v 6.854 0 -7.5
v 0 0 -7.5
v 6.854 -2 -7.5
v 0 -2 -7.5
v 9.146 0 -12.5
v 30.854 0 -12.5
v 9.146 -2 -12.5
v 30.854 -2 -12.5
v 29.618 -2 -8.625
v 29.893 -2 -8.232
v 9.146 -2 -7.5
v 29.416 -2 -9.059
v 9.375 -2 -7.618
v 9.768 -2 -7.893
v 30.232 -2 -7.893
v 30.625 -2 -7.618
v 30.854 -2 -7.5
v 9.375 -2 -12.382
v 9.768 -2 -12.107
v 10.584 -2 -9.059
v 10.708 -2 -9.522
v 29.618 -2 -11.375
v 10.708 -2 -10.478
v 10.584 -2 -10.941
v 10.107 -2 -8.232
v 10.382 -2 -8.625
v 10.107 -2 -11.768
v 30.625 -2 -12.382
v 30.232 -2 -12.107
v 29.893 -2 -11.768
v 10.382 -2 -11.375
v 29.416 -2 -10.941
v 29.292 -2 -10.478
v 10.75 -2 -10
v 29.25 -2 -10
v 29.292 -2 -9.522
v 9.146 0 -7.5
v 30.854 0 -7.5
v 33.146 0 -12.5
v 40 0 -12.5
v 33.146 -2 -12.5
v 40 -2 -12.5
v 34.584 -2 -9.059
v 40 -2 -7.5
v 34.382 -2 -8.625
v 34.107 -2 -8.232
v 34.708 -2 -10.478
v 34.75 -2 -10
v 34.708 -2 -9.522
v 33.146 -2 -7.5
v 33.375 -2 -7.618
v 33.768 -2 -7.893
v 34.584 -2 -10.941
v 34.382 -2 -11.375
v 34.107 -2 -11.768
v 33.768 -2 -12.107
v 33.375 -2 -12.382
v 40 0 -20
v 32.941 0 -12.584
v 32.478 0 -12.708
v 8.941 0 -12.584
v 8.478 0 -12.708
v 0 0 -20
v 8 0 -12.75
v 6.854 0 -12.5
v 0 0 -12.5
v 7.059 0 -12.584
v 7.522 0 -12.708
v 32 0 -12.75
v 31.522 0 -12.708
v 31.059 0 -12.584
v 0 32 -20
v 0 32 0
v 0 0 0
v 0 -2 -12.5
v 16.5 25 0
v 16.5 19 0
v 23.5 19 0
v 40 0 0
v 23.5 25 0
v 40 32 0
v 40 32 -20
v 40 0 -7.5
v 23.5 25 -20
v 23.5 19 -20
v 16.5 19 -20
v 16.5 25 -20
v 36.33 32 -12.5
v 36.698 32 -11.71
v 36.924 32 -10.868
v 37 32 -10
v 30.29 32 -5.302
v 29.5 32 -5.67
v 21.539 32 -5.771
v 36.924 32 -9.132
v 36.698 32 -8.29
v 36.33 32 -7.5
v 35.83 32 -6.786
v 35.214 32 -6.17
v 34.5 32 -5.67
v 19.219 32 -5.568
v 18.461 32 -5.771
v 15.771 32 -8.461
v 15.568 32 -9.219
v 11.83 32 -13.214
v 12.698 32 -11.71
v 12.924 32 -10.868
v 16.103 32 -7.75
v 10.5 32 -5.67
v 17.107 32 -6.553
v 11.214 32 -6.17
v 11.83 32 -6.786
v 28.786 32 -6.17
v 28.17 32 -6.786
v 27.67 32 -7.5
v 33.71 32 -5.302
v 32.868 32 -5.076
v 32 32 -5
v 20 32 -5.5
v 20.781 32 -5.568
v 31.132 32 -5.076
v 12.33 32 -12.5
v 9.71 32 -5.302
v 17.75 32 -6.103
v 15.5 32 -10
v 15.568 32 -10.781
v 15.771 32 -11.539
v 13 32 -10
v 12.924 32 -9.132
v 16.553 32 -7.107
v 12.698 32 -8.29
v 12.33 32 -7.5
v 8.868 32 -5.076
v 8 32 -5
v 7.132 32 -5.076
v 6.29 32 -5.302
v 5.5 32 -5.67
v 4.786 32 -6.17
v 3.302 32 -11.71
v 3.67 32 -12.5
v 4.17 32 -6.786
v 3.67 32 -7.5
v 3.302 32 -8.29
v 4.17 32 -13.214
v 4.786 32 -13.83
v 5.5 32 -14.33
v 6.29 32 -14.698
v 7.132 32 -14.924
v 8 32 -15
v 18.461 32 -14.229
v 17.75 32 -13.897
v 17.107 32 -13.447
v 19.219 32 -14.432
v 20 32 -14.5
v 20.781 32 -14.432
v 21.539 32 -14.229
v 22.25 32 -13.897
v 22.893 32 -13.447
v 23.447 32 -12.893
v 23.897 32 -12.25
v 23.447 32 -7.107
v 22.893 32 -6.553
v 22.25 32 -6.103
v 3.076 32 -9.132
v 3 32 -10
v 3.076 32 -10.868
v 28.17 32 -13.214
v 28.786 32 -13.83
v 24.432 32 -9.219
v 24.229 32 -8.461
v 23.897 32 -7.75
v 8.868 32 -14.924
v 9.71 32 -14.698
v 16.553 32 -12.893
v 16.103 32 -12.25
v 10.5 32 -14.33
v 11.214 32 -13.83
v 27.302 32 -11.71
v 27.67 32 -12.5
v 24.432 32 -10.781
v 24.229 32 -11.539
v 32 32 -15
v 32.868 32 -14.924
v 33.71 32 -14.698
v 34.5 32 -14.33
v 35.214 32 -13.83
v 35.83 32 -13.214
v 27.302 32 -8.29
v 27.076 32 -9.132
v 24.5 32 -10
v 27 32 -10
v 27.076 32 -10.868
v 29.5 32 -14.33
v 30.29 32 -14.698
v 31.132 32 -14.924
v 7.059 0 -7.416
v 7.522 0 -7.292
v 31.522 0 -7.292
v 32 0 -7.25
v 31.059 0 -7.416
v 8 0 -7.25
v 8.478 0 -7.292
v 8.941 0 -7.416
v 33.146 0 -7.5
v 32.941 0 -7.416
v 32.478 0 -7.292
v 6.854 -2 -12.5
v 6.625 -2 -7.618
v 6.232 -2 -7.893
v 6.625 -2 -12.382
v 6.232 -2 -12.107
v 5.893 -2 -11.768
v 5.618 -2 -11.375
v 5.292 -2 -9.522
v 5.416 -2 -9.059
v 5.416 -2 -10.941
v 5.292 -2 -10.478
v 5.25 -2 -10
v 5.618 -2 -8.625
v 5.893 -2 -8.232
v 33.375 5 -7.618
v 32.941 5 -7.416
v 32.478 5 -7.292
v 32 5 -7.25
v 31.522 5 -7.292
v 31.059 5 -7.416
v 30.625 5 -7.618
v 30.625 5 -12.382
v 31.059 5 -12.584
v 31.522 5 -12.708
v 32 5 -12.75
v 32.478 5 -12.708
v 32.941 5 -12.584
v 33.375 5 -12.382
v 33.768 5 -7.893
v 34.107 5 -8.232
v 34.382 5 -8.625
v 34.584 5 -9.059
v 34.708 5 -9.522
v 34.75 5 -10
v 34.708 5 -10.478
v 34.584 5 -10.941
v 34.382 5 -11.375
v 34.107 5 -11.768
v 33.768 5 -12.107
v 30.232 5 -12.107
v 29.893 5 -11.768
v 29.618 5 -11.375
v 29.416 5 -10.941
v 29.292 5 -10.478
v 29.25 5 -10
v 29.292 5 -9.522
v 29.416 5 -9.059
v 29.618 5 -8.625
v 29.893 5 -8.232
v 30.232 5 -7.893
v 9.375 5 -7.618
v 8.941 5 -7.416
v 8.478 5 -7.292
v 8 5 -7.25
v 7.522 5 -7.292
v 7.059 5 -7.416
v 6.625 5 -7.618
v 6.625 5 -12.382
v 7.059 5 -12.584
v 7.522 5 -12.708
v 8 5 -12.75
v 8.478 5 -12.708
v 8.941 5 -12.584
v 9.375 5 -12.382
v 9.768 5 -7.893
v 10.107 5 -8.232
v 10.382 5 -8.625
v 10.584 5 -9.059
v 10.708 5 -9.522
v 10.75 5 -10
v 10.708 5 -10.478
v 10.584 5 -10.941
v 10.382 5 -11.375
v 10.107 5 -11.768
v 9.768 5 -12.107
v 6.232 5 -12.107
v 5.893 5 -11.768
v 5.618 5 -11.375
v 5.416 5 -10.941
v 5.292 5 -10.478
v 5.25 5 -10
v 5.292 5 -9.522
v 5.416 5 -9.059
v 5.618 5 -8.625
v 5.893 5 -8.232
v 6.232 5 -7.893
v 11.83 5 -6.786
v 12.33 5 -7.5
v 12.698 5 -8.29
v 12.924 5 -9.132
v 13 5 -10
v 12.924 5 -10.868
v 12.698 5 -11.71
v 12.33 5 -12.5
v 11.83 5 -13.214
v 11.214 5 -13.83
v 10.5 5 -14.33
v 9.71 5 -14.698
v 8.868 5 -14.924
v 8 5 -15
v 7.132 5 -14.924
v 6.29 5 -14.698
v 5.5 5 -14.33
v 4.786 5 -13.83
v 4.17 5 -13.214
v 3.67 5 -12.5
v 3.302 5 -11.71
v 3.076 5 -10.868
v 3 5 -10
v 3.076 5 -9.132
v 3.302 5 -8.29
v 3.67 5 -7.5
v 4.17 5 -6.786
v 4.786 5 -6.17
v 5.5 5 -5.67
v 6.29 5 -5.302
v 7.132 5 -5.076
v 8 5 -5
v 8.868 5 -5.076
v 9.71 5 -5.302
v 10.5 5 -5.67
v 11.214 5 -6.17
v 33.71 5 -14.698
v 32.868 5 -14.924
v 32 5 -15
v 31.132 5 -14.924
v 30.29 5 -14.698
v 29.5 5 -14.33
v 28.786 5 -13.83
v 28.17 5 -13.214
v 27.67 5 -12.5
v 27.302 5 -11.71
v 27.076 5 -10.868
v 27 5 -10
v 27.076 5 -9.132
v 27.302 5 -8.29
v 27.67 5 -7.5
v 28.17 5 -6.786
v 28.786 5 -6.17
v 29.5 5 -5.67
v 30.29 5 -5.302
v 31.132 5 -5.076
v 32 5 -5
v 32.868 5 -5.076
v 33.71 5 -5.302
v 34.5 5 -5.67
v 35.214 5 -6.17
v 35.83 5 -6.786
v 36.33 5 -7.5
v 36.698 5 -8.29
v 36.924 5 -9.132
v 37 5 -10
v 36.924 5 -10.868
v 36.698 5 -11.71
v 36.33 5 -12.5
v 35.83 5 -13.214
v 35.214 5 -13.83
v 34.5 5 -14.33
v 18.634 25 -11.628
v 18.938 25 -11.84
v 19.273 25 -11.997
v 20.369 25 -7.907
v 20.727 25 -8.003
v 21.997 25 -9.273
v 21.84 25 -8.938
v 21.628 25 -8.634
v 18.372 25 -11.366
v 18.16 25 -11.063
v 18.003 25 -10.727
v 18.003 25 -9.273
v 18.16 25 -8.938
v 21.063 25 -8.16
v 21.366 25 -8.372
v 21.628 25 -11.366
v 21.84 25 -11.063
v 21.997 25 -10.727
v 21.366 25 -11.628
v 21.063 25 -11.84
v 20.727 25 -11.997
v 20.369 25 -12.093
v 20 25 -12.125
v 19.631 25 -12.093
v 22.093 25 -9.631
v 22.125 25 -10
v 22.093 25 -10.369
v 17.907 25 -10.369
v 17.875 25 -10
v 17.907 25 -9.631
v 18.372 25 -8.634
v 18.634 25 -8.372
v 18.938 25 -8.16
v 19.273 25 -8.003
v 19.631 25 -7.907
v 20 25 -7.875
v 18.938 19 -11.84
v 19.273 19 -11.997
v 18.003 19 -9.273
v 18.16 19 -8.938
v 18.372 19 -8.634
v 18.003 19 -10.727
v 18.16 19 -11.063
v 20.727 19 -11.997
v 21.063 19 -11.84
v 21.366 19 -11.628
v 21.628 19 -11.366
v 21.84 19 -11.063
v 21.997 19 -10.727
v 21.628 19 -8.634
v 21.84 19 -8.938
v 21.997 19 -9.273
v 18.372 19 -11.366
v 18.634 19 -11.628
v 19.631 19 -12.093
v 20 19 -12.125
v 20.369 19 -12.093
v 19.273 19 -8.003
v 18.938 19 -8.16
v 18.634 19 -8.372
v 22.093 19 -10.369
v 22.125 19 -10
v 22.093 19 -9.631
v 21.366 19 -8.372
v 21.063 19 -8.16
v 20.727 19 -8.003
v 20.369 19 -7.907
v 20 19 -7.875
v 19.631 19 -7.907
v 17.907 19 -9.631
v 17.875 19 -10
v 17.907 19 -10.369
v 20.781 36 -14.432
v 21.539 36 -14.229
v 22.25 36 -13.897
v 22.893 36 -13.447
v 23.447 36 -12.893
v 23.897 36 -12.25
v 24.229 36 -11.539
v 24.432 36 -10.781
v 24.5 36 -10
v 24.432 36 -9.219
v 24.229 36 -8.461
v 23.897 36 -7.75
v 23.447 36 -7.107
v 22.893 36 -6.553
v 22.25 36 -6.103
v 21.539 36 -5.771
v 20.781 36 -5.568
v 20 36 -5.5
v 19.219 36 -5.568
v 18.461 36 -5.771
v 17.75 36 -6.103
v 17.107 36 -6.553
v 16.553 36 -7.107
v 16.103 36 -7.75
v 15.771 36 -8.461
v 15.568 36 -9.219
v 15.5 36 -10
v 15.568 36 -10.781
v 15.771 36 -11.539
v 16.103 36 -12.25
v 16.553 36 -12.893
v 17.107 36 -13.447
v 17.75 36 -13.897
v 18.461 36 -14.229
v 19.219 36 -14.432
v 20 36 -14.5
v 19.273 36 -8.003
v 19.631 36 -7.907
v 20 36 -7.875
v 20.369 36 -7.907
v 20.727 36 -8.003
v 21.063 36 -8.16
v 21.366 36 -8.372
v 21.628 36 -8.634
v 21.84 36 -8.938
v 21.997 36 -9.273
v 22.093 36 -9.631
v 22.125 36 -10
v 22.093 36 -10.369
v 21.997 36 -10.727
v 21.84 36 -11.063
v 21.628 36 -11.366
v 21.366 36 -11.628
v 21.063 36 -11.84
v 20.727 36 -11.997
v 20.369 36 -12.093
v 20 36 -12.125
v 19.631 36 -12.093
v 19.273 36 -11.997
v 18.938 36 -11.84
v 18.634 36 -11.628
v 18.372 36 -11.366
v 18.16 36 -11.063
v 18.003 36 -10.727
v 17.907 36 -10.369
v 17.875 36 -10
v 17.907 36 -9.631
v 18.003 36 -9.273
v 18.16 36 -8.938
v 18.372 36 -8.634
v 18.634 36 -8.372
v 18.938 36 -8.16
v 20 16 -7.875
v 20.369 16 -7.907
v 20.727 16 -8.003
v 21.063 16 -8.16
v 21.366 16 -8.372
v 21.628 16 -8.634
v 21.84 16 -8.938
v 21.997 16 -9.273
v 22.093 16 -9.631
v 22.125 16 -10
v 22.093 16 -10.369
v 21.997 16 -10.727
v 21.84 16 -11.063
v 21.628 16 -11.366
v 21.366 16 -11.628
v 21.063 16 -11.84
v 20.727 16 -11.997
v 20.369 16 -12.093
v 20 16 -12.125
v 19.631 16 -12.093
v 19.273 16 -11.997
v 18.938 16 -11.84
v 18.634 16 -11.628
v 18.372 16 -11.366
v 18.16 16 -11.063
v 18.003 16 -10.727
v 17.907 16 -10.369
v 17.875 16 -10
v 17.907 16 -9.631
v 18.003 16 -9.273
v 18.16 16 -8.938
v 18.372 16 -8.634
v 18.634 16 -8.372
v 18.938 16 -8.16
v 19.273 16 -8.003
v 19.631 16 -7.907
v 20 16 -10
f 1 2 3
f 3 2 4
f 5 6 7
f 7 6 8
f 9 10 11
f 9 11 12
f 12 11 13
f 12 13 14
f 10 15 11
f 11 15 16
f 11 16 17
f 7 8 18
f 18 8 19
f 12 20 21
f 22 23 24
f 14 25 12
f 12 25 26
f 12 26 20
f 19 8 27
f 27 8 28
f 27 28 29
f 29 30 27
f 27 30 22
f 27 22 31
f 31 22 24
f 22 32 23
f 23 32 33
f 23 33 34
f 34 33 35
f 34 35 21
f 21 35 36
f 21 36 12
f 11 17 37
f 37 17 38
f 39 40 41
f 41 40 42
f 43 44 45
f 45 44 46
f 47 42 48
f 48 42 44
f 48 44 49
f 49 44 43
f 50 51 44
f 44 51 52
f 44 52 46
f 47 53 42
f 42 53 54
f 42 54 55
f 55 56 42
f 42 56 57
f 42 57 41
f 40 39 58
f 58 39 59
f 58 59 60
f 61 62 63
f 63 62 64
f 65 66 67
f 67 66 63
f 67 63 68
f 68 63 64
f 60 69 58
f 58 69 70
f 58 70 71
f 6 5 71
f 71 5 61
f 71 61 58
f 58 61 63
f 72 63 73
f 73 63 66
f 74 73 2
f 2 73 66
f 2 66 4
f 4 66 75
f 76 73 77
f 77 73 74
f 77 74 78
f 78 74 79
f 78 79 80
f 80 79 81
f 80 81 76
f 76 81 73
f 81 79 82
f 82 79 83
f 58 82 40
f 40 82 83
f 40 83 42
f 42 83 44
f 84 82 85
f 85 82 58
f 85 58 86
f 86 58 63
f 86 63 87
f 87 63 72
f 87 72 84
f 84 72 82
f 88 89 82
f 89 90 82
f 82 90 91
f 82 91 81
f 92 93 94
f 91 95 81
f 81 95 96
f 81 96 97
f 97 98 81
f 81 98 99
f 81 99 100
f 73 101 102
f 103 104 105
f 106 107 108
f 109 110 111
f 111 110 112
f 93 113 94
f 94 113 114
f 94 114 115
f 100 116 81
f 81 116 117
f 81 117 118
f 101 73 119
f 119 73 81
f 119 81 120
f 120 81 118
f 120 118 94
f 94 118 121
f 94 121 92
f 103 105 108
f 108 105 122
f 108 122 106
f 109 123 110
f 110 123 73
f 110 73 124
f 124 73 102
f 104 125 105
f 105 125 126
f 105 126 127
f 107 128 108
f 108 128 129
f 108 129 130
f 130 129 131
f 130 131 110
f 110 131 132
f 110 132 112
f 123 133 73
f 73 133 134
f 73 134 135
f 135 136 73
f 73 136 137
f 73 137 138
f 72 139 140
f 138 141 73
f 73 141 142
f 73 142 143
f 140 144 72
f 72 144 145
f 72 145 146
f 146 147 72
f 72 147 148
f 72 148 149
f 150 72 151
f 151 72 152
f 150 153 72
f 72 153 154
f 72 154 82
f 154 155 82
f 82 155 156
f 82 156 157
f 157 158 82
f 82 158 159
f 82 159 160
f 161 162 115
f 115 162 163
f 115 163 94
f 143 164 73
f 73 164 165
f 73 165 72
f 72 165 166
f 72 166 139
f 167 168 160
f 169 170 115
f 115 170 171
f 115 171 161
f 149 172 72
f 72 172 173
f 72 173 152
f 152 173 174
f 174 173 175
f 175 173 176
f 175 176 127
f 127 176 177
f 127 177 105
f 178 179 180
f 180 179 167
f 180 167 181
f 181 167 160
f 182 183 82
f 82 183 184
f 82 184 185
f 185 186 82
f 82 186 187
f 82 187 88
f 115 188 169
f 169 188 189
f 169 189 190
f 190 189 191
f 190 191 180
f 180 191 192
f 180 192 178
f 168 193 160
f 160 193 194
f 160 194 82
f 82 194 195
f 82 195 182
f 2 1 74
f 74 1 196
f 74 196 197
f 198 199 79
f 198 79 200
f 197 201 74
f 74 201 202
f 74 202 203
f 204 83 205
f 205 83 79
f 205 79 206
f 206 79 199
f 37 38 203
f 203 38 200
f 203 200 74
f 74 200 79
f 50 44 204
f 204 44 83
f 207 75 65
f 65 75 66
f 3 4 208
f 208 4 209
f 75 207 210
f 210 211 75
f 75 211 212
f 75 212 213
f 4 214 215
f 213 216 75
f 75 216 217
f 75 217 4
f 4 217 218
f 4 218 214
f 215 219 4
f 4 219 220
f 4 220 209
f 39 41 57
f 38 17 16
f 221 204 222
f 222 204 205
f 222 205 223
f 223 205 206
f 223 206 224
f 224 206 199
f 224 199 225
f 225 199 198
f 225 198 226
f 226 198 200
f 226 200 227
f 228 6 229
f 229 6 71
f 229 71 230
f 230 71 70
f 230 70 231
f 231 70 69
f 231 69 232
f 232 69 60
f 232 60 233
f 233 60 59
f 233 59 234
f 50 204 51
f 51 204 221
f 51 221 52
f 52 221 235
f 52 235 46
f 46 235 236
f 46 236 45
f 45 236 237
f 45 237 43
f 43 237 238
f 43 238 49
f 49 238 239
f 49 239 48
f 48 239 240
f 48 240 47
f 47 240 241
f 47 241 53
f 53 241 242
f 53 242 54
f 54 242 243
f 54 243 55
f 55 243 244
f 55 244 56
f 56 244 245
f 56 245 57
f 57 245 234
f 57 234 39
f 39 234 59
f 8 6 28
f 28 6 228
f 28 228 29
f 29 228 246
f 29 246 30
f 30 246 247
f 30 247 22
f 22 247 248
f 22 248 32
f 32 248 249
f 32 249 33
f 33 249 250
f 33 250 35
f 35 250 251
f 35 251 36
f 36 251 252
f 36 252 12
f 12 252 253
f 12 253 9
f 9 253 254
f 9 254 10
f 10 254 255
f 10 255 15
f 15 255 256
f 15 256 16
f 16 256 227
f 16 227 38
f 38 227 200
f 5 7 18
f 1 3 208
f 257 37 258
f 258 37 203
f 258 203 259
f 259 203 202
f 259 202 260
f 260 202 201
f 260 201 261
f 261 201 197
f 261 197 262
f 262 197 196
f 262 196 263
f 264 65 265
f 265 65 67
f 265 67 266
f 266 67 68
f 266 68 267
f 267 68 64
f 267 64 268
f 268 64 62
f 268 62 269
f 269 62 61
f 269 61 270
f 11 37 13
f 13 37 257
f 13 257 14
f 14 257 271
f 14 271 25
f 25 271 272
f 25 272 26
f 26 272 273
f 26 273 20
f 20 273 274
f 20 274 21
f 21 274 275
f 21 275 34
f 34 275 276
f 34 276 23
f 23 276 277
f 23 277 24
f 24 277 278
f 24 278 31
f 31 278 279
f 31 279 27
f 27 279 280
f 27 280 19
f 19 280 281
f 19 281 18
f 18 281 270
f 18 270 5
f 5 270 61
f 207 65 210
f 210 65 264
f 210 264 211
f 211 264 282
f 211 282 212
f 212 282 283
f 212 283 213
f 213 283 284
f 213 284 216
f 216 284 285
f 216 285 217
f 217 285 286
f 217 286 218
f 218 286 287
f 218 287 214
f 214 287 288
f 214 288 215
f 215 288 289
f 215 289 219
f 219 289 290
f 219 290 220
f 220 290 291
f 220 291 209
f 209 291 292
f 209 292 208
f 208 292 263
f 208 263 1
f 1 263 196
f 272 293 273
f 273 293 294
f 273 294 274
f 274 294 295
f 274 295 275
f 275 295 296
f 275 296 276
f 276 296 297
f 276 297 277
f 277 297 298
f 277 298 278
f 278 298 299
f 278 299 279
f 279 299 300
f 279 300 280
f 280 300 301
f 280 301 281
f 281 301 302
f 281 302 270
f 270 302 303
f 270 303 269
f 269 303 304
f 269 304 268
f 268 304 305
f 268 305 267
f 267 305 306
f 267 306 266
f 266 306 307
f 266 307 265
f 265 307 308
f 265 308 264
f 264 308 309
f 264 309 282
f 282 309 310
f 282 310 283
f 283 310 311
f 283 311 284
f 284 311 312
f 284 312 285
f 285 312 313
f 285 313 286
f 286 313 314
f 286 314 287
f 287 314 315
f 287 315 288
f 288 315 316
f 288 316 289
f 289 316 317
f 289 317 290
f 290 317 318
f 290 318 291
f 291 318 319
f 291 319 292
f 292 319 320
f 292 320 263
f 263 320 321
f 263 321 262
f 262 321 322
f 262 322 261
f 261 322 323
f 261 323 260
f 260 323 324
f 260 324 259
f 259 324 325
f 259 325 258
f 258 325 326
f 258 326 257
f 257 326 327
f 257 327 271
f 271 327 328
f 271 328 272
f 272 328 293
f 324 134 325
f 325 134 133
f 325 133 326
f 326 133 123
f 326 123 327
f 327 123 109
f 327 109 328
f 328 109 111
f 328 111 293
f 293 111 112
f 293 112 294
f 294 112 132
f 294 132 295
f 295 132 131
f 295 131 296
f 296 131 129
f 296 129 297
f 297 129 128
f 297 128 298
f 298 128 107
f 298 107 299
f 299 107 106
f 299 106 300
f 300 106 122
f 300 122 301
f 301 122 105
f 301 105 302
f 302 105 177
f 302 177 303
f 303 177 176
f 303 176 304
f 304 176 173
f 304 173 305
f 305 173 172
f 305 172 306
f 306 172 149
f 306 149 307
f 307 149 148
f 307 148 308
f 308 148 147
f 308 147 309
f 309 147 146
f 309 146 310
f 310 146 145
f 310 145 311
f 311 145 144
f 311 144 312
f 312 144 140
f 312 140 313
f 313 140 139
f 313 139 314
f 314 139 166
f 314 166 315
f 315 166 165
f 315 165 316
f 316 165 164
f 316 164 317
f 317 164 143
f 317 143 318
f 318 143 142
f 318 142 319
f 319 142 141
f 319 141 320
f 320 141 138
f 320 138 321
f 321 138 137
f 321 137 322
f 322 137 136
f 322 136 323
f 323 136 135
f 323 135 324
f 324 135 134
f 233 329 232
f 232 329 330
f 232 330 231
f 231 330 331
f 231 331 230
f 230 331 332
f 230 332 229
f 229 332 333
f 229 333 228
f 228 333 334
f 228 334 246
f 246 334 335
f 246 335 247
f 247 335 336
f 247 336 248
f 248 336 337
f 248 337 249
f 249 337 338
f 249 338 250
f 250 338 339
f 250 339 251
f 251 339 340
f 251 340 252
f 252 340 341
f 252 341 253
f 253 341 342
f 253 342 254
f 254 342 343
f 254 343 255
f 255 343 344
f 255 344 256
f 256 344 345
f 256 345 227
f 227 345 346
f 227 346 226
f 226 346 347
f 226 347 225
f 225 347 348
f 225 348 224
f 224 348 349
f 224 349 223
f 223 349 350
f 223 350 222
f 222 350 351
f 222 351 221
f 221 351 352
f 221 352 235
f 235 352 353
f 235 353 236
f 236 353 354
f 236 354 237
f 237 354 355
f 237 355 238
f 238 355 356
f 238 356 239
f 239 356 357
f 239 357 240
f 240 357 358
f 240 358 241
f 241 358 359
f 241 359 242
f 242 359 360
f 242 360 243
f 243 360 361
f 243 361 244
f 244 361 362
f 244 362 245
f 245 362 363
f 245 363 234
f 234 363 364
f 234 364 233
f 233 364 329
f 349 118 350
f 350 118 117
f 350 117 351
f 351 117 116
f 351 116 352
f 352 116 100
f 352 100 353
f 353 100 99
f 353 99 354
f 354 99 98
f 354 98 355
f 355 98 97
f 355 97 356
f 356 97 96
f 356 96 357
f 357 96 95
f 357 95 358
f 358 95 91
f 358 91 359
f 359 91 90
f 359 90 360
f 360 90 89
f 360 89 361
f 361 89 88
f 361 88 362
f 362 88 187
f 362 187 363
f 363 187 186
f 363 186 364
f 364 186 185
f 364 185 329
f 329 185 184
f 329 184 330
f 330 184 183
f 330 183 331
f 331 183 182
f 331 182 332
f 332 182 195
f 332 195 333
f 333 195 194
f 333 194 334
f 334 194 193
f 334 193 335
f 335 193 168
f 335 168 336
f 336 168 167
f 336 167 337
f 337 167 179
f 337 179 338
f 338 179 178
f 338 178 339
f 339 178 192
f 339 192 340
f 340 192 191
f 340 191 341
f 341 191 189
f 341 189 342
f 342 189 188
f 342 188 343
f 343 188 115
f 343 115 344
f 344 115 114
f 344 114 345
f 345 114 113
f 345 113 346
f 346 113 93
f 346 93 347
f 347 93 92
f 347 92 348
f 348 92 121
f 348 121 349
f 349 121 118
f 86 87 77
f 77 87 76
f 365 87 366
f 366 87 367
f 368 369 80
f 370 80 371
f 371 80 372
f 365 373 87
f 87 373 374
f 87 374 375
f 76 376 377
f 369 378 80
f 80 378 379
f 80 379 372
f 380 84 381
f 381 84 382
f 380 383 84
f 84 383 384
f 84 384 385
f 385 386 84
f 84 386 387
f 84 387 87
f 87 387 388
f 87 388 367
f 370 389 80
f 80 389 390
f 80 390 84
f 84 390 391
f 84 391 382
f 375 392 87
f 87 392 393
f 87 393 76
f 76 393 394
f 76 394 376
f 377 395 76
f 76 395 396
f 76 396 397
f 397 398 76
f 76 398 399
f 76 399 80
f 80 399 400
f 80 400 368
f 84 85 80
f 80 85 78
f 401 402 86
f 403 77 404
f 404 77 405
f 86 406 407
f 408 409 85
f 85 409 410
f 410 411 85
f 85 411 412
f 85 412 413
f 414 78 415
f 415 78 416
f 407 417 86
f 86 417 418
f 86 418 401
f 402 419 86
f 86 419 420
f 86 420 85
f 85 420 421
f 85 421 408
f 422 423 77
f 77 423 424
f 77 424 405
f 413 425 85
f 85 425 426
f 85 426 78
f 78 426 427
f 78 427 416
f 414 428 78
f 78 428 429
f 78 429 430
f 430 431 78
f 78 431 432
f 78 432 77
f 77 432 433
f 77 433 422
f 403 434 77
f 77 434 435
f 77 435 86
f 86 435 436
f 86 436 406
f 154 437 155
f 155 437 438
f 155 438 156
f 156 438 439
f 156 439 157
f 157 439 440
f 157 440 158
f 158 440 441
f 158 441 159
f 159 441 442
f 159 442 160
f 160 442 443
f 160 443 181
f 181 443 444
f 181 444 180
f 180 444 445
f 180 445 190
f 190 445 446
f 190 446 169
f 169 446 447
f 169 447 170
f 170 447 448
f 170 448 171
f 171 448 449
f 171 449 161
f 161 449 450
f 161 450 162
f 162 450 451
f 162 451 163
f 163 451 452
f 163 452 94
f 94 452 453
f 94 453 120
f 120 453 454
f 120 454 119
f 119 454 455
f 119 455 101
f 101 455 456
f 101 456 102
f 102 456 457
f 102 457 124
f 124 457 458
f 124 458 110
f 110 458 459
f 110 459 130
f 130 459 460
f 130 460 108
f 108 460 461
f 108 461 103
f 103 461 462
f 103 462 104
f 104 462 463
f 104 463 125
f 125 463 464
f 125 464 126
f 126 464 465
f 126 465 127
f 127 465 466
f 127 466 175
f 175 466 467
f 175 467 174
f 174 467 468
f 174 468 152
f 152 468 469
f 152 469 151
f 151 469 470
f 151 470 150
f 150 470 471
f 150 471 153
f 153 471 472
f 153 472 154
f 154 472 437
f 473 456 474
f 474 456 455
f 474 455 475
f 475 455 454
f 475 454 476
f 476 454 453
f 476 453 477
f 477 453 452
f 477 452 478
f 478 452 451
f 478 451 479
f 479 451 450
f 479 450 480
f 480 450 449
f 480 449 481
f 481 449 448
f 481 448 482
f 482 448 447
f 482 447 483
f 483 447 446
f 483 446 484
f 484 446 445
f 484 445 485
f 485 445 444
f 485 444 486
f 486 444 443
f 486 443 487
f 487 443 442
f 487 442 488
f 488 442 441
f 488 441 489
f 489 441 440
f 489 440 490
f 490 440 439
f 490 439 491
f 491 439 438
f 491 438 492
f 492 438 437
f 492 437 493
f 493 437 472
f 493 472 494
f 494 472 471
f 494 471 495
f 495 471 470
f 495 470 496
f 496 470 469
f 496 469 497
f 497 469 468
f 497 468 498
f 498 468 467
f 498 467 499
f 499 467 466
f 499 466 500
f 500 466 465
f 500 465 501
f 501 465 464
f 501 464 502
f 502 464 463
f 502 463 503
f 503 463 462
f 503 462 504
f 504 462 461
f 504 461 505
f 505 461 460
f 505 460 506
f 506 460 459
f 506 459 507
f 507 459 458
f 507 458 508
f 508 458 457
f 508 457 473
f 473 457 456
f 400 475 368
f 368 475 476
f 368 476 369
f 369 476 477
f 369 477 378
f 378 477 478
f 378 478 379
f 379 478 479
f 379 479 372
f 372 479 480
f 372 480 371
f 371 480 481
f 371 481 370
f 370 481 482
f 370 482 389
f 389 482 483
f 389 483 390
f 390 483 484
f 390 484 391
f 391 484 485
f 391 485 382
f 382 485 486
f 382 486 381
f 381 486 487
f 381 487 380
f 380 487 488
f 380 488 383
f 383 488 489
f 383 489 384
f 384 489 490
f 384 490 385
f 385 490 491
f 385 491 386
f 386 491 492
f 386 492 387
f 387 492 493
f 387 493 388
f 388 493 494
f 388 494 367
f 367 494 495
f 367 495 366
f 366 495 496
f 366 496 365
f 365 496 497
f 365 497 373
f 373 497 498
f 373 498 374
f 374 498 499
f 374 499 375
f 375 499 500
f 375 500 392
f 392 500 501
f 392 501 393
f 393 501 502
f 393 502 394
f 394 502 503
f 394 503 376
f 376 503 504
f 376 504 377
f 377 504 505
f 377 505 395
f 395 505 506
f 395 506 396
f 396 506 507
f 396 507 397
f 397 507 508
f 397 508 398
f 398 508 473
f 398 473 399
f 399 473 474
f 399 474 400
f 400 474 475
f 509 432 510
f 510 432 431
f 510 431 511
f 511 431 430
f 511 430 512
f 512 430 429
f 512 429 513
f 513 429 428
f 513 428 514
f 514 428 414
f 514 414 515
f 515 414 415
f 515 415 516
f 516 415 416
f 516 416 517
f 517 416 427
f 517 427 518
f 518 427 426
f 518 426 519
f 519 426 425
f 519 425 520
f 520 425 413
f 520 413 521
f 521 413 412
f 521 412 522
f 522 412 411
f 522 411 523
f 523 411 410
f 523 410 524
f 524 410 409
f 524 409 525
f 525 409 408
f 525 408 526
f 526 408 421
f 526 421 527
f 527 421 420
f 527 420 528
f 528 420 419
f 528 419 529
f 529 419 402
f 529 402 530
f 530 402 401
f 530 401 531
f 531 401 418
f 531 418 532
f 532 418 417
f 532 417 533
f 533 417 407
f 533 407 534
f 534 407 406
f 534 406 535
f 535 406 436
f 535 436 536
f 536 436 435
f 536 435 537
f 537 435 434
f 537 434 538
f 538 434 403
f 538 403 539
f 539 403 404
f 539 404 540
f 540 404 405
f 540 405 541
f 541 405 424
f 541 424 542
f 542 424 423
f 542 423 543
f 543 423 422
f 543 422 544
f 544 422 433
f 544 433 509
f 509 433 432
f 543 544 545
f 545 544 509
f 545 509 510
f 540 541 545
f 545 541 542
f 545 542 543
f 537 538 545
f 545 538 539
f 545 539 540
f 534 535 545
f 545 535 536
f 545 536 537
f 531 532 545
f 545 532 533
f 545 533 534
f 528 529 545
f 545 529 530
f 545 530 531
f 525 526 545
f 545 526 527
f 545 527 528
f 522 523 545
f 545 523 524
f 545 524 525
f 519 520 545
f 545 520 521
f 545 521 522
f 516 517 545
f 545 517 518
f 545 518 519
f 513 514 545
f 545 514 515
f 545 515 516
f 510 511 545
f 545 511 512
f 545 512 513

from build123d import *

# Parameters (mm, degrees)
SKETCH1_W           = 40
SKETCH1_H           = 20
BOSS_EXTRUDE1_DEPTH = 32
SKETCH2_W           = 40
SKETCH2_H           = 5
BOSS_EXTRUDE2_DEPTH = 2
SKETCH3_R           = 2.75
CUT_EXTRUDE1_DEPTH  = 35
SKETCH4_R           = 5
CUT_EXTRUDE2_DEPTH  = 27
SKETCH5_W           = 7
SKETCH5_H           = 6
CUT_EXTRUDE3_DEPTH  = 21
SKETCH6_R           = 4.5
BOSS_EXTRUDE3_DEPTH = 4
SKETCH7_R           = 2.125
CUT_EXTRUDE4_DEPTH  = 20


with BuildPart() as part:
    # Sketch1 → Boss-Extrude1 (new body)
    with BuildSketch(Plane(origin=(0, 0, 0), x_dir=(1, 0, 0), z_dir=(0, 1, 0))):
        with Locations((20, 10)):
            Rectangle(SKETCH1_W, SKETCH1_H)
    extrude(amount=BOSS_EXTRUDE1_DEPTH)

    # Sketch2 → Boss-Extrude2 (add)
    with BuildSketch(Plane.XZ):
        with Locations((20, -10)):
            Rectangle(SKETCH2_W, SKETCH2_H)
    extrude(amount=BOSS_EXTRUDE2_DEPTH)

    # Sketch3 → Cut-Extrude1 (cut, through all)
    with BuildSketch(Plane(origin=(0, 32, 0), x_dir=(1, 0, 0), z_dir=(0, 1, 0))):
        with Locations((32, 10)):
            Circle(SKETCH3_R)
        with Locations((8, 10)):
            Circle(SKETCH3_R)
    extrude(amount=-CUT_EXTRUDE1_DEPTH, mode=Mode.SUBTRACT)

    # Sketch4 → Cut-Extrude2 (cut)
    with BuildSketch(Plane(origin=(0, 32, 0), x_dir=(1, 0, 0), z_dir=(0, 1, 0))):
        with Locations((8, 10)):
            Circle(SKETCH4_R)
        with Locations((32, 10)):
            Circle(SKETCH4_R)
    extrude(amount=-CUT_EXTRUDE2_DEPTH, mode=Mode.SUBTRACT)

    # Sketch5 → Cut-Extrude3 (cut, through all)
    with BuildSketch(Plane.XY):
        with Locations((20, 22)):
            Rectangle(SKETCH5_W, SKETCH5_H)
    extrude(amount=-CUT_EXTRUDE3_DEPTH, mode=Mode.SUBTRACT)

    # Sketch6 → Boss-Extrude3 (add)
    with BuildSketch(Plane(origin=(0, 32, 0), x_dir=(1, 0, 0), z_dir=(0, 1, 0))):
        with Locations((20, 10)):
            Circle(SKETCH6_R)
    extrude(amount=BOSS_EXTRUDE3_DEPTH)

    # Sketch7 → Cut-Extrude4 (cut)
    with BuildSketch(Plane(origin=(0, 36, 0), x_dir=(1, 0, 0), z_dir=(0, 1, 0))):
        with Locations((20, 10)):
            Circle(SKETCH7_R)
    extrude(amount=-CUT_EXTRUDE4_DEPTH, mode=Mode.SUBTRACT)


solid = part.part
